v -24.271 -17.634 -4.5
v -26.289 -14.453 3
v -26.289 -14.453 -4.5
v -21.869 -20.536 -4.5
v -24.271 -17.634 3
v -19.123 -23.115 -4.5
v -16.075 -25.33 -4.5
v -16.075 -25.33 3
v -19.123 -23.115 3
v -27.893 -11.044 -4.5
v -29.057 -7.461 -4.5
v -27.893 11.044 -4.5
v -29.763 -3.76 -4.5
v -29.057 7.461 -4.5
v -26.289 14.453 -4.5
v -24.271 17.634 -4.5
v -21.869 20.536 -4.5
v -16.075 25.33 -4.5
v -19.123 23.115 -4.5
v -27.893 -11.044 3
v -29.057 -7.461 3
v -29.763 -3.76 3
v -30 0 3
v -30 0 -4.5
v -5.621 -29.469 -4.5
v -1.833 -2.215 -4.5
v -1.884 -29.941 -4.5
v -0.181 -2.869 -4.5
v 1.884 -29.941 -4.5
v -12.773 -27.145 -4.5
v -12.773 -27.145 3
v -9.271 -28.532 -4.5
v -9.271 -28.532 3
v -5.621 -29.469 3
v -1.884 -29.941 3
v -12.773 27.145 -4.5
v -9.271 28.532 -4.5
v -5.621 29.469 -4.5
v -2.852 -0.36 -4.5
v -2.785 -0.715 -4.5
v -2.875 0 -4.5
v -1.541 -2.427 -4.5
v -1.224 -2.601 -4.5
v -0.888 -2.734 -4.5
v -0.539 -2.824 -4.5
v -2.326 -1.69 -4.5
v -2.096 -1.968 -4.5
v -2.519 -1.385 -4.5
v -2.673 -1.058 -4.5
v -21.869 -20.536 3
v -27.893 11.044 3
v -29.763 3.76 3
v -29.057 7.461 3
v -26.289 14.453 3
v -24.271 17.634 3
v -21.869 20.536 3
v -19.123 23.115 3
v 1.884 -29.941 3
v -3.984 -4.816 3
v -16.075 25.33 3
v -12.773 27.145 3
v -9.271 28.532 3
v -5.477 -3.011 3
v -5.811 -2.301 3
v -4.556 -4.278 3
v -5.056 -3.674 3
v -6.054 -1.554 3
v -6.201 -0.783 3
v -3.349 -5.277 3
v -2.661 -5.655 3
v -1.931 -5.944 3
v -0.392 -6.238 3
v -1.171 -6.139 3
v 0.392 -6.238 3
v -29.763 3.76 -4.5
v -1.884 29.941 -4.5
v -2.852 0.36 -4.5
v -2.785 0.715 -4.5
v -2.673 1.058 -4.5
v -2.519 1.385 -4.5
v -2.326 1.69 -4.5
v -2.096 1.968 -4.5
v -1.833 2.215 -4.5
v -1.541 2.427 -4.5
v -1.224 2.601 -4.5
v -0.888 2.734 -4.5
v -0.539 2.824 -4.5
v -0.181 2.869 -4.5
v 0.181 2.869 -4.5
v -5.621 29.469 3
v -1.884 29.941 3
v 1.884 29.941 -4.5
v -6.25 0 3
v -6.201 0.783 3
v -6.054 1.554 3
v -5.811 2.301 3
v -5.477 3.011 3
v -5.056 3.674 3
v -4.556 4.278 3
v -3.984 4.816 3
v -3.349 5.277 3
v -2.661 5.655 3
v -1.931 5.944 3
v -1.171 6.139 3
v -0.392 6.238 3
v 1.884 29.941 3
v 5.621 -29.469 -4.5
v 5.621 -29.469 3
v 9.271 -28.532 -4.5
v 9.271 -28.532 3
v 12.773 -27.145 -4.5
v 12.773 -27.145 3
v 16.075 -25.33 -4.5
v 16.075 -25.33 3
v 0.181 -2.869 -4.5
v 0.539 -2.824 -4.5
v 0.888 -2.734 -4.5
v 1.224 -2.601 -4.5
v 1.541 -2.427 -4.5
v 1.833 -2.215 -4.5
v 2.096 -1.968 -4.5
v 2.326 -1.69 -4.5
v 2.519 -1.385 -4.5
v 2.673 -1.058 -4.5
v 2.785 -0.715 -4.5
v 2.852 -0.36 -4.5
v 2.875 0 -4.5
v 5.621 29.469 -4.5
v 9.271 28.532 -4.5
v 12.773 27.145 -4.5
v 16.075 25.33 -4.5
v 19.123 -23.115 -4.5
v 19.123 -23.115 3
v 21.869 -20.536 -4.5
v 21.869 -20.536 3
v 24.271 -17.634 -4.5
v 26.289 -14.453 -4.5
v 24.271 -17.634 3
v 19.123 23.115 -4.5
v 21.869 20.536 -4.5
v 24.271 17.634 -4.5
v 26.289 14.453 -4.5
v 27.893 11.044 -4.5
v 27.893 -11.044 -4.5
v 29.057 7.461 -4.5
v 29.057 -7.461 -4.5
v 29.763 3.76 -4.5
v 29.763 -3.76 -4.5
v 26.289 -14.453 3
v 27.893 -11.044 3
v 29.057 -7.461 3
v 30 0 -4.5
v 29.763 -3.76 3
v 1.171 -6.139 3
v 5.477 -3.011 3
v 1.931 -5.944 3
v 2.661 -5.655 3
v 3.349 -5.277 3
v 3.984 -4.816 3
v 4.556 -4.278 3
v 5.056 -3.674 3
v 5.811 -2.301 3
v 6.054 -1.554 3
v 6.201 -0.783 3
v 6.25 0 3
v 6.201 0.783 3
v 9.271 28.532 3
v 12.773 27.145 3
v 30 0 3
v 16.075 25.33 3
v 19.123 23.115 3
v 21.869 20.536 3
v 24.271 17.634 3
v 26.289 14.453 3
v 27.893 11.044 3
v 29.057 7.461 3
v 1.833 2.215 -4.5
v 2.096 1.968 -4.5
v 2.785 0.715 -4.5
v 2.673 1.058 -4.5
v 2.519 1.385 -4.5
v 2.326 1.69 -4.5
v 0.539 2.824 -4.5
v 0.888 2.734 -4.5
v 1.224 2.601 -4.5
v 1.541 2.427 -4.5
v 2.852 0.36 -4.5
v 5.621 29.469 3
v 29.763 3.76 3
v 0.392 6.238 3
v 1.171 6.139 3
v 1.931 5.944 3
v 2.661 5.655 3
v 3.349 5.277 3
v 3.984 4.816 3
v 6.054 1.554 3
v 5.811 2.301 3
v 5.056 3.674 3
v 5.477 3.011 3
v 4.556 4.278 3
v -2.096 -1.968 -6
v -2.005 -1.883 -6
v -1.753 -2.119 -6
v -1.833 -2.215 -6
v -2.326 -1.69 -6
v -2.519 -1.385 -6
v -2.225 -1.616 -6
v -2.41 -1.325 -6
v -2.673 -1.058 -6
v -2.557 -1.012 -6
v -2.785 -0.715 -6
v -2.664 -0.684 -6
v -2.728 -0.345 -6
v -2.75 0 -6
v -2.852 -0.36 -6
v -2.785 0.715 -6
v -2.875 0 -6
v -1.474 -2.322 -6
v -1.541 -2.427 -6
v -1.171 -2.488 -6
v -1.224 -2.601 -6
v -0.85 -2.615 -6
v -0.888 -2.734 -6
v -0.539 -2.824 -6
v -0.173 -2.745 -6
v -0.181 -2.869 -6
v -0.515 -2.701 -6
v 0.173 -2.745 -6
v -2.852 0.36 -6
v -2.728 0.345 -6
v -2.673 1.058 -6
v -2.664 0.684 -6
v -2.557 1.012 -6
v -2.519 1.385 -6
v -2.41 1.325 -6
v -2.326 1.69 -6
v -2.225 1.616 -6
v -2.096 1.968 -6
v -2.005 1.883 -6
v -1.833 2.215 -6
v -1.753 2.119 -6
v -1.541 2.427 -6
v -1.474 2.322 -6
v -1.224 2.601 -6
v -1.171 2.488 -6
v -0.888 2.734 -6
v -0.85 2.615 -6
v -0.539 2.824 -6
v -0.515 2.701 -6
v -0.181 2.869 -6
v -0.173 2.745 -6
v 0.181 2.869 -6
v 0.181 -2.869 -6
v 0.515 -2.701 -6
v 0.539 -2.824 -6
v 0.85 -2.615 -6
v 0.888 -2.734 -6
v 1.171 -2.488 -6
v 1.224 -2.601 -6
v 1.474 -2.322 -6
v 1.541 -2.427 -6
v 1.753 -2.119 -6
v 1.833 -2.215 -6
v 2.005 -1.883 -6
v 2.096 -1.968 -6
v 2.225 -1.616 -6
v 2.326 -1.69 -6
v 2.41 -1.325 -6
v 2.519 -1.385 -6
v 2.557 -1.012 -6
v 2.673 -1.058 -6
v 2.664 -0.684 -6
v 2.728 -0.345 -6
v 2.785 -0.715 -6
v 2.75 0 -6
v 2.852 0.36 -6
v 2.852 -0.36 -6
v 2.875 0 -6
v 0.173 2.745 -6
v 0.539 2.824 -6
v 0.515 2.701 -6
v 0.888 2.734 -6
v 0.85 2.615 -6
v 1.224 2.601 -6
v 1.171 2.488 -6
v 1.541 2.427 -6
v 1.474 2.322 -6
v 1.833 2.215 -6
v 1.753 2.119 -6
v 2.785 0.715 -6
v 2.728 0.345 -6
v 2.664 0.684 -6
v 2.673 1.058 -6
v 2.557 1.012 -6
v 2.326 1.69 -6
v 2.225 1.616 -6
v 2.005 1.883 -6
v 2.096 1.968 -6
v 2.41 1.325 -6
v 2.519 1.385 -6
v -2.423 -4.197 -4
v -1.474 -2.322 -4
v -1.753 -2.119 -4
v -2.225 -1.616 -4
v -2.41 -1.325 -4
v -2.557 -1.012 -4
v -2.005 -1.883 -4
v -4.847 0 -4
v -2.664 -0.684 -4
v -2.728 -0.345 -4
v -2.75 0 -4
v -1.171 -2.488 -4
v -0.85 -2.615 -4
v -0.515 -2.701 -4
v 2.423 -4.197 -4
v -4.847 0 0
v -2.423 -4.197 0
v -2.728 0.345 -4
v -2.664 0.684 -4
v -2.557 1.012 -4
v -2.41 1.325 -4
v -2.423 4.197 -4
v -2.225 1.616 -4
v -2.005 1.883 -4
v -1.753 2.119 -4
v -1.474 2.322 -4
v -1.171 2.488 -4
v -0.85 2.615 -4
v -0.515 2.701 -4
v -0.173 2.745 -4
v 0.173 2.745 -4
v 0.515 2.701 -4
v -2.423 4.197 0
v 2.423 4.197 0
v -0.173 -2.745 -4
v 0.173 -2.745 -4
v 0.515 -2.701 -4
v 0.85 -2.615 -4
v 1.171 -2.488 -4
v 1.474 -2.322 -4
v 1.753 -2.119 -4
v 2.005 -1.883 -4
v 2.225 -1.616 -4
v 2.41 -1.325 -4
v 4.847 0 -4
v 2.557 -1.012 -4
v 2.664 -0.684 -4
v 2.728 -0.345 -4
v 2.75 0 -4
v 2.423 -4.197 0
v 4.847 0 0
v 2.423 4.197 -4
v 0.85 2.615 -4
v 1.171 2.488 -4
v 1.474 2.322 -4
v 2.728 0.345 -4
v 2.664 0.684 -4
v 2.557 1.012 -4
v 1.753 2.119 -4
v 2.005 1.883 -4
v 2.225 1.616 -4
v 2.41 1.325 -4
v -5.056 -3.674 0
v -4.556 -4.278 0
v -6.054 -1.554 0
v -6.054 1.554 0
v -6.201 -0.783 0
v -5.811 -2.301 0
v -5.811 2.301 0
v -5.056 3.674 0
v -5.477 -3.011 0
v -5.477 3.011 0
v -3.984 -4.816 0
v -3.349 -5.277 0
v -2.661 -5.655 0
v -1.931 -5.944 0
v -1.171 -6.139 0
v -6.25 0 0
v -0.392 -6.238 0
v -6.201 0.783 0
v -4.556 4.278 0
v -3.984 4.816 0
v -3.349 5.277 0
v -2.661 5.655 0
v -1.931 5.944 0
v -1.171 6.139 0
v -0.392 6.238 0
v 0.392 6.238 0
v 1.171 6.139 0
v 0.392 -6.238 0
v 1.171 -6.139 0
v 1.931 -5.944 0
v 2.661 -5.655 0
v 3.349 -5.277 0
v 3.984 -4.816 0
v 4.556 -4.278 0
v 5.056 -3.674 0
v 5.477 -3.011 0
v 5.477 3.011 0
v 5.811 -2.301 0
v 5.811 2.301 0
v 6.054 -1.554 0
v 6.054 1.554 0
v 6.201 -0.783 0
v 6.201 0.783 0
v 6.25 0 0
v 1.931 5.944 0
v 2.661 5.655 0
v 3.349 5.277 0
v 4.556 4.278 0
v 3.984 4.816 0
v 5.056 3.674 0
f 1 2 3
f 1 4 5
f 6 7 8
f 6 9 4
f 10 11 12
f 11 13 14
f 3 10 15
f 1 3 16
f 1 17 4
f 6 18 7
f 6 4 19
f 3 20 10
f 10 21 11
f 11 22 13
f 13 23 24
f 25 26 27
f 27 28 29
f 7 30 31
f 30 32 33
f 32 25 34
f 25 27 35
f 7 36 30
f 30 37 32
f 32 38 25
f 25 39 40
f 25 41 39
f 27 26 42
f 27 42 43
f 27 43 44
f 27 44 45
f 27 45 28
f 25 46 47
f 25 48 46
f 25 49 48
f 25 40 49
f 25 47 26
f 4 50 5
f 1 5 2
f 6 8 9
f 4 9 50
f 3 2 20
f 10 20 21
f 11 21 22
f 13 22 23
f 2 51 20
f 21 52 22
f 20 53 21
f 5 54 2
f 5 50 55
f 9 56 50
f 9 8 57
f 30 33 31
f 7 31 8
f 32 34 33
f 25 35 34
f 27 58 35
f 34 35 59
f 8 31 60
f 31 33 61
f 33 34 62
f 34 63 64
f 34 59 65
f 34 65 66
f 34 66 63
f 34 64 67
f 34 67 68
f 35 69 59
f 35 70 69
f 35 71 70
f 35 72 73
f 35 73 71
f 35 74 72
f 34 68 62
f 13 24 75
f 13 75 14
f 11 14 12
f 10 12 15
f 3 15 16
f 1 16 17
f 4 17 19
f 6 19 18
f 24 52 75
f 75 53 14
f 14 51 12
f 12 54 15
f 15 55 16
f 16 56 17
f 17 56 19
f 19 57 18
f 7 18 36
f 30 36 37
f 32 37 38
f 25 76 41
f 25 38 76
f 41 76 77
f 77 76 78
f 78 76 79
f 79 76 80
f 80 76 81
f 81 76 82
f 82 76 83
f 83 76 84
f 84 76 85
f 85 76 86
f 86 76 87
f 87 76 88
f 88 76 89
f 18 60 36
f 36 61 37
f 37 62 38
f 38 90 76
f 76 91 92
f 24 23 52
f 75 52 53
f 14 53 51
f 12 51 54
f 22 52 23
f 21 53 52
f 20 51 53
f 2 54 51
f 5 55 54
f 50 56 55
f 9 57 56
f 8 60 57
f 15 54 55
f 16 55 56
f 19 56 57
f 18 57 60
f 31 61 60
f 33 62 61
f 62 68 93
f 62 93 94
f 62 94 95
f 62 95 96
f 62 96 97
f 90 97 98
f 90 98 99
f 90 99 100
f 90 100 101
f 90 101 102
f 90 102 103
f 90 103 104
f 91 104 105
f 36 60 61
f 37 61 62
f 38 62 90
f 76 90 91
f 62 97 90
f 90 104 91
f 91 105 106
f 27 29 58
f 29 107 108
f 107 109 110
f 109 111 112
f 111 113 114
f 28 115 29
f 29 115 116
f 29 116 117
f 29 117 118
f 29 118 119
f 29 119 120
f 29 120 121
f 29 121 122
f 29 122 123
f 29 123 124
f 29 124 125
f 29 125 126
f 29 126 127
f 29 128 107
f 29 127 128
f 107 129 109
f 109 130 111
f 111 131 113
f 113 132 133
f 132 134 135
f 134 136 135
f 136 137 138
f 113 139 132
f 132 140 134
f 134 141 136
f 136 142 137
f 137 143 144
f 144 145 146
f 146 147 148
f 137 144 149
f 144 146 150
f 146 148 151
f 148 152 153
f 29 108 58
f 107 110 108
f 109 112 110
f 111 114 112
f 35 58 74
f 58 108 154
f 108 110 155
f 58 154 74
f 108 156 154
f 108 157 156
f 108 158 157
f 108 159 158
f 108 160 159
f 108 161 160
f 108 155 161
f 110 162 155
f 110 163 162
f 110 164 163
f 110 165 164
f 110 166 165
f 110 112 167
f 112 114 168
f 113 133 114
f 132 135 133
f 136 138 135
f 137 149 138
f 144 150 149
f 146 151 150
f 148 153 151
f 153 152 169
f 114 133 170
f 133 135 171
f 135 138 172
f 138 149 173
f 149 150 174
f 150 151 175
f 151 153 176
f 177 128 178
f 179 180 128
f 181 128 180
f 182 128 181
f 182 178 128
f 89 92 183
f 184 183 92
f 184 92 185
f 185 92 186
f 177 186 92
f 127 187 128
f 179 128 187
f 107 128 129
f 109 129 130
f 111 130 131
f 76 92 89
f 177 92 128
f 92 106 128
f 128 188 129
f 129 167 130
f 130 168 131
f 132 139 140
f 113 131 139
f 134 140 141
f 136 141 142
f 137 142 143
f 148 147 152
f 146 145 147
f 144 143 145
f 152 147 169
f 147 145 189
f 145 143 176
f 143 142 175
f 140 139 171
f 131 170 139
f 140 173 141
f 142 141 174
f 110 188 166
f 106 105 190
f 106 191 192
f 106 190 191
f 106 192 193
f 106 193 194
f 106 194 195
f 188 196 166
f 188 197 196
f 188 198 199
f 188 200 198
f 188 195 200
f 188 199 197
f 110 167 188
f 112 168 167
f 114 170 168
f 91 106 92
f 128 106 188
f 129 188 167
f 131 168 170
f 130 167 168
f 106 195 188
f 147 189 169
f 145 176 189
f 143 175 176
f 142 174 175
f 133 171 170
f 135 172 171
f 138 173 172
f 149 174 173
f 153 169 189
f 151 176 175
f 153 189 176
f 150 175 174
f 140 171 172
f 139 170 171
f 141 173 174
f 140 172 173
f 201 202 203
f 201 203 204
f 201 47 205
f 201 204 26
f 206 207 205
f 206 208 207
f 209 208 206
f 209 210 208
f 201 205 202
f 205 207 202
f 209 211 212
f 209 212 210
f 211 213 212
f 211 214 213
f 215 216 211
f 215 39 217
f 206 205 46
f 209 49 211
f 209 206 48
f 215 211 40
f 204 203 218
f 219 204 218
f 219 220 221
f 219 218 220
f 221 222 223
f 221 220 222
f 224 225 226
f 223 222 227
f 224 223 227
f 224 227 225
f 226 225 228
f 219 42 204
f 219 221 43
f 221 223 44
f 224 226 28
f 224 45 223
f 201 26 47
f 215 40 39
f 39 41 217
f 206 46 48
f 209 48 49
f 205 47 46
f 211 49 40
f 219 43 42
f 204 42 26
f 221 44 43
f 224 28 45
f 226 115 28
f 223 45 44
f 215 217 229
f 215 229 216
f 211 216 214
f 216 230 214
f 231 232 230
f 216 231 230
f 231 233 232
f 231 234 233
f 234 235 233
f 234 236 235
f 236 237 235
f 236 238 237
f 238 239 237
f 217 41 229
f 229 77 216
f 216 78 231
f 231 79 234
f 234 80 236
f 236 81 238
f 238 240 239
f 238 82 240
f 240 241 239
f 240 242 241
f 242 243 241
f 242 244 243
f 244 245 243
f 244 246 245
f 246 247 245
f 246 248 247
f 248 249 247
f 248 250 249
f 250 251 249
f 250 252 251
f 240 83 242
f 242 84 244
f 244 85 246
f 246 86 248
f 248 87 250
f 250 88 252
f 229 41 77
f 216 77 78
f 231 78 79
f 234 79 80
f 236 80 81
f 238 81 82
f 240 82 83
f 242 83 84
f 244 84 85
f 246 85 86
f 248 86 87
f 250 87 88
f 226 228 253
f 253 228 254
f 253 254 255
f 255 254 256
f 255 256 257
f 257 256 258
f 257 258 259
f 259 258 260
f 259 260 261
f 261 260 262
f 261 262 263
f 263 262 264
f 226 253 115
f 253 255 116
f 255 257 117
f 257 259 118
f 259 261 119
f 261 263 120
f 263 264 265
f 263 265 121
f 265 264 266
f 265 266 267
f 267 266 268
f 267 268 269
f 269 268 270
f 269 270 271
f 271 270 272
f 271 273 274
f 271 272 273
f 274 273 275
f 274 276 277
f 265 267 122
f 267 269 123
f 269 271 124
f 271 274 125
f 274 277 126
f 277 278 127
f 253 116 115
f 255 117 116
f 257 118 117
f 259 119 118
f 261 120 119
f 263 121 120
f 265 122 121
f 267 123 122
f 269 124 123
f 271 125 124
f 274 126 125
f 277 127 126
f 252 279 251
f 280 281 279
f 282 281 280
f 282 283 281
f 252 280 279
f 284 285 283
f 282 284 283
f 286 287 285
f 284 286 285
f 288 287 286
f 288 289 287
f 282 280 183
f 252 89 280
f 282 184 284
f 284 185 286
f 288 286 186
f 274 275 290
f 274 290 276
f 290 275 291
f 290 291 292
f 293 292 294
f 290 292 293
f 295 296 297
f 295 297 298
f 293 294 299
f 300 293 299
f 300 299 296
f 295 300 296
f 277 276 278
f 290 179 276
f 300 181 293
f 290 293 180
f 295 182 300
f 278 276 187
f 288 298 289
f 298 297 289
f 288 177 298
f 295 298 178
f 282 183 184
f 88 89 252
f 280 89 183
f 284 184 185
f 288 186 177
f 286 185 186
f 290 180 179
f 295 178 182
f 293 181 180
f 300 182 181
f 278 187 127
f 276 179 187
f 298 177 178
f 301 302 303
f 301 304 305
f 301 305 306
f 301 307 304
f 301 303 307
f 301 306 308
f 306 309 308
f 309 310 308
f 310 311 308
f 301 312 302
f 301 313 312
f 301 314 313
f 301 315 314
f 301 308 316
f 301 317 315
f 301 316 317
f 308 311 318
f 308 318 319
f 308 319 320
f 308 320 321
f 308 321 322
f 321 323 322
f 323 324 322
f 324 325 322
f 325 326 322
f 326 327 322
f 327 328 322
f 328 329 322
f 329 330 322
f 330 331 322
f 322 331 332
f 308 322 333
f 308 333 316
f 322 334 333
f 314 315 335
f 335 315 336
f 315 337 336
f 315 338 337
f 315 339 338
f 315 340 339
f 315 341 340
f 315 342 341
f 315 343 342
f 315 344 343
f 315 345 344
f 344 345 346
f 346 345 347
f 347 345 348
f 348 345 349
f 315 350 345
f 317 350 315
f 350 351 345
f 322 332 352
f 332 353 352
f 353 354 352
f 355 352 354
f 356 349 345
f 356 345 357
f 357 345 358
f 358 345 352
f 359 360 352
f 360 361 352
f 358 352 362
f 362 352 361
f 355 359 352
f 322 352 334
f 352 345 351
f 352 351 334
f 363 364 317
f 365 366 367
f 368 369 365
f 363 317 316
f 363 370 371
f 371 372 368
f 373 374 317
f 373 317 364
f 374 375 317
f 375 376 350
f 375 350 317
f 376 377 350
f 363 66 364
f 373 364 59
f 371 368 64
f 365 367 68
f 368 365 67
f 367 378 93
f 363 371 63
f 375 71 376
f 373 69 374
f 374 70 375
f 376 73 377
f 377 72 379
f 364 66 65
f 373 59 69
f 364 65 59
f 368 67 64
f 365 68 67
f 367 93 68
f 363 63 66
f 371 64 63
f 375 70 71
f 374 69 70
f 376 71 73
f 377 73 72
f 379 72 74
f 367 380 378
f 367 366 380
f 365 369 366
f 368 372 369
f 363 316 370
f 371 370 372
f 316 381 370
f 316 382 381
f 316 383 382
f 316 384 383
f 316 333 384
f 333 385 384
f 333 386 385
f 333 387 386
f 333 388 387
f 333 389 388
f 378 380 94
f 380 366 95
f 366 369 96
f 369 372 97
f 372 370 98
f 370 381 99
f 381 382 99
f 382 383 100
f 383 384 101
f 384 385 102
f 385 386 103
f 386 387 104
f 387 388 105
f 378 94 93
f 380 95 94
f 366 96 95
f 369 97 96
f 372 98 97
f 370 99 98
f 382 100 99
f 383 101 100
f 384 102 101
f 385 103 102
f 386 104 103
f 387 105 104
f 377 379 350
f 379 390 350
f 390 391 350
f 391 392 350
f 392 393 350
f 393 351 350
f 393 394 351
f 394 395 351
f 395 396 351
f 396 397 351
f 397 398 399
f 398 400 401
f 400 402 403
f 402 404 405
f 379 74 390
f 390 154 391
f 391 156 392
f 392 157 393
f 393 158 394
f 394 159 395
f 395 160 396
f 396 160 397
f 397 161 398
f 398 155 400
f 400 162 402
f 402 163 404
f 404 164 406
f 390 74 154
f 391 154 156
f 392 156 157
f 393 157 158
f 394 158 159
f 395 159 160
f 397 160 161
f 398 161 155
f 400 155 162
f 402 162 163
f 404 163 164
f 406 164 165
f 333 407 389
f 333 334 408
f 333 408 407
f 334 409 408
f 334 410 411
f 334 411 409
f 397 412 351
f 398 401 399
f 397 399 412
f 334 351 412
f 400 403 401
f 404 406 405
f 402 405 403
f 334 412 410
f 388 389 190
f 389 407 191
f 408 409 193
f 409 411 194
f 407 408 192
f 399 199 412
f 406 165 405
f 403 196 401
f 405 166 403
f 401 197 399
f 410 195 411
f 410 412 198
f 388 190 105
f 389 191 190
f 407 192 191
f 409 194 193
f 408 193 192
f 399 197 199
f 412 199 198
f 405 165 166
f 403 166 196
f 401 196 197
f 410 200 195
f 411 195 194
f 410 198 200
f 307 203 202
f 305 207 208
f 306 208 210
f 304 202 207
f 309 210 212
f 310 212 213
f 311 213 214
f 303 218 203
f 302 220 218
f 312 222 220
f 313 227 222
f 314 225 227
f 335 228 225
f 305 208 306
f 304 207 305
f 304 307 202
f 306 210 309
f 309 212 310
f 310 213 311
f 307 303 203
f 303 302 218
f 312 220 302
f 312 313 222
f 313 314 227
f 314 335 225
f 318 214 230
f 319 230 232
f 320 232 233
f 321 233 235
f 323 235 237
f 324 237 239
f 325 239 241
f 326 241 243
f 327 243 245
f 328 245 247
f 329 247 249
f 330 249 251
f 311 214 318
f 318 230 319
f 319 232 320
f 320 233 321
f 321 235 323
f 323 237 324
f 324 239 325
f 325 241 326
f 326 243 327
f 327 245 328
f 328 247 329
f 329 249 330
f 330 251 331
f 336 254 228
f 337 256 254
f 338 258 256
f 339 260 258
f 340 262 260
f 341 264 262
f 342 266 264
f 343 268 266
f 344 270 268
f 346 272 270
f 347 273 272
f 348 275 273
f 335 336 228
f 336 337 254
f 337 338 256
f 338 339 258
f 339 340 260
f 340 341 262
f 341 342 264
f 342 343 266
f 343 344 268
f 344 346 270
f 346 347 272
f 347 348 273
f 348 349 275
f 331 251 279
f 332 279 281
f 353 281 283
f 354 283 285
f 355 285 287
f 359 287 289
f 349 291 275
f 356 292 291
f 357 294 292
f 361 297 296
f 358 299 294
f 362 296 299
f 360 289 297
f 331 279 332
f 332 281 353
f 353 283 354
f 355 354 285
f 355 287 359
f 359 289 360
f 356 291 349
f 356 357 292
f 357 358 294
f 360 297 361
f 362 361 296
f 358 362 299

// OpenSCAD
$fn = 50;

difference() {
	union() {
		translate(v = [0, 0, -4.5]) {
			cylinder(h = 7.5, r = 30.0);
		}
		#translate(v = [0, 0, -6.0]) {
			cylinder(h = 6, r = 2.875);
		}
	}
	union() {
		translate(v = [0, 0, 0]) {
			rotate(a = [0, 0, 0]) {
				difference() {
					union() {
						translate(v = [0, 0, -4]) {
							linear_extrude(height = 4) {
								polygon(points = [[4.8468, 0.0], [2.4234000000000004, 4.197451927062417], [-2.423399999999999, 4.197451927062417], [-4.8468, 5.935618106107392e-16], [-2.423400000000002, -4.197451927062416], [2.423399999999997, -4.197451927062419]]);
							}
						}
					}
					union();
				}
			}
		}
		#cylinder(h = 3, r = 6.25);
		#translate(v = [0, 0, -100.0]) {
			cylinder(h = 200, r = 2.75);
		}
	}
}
